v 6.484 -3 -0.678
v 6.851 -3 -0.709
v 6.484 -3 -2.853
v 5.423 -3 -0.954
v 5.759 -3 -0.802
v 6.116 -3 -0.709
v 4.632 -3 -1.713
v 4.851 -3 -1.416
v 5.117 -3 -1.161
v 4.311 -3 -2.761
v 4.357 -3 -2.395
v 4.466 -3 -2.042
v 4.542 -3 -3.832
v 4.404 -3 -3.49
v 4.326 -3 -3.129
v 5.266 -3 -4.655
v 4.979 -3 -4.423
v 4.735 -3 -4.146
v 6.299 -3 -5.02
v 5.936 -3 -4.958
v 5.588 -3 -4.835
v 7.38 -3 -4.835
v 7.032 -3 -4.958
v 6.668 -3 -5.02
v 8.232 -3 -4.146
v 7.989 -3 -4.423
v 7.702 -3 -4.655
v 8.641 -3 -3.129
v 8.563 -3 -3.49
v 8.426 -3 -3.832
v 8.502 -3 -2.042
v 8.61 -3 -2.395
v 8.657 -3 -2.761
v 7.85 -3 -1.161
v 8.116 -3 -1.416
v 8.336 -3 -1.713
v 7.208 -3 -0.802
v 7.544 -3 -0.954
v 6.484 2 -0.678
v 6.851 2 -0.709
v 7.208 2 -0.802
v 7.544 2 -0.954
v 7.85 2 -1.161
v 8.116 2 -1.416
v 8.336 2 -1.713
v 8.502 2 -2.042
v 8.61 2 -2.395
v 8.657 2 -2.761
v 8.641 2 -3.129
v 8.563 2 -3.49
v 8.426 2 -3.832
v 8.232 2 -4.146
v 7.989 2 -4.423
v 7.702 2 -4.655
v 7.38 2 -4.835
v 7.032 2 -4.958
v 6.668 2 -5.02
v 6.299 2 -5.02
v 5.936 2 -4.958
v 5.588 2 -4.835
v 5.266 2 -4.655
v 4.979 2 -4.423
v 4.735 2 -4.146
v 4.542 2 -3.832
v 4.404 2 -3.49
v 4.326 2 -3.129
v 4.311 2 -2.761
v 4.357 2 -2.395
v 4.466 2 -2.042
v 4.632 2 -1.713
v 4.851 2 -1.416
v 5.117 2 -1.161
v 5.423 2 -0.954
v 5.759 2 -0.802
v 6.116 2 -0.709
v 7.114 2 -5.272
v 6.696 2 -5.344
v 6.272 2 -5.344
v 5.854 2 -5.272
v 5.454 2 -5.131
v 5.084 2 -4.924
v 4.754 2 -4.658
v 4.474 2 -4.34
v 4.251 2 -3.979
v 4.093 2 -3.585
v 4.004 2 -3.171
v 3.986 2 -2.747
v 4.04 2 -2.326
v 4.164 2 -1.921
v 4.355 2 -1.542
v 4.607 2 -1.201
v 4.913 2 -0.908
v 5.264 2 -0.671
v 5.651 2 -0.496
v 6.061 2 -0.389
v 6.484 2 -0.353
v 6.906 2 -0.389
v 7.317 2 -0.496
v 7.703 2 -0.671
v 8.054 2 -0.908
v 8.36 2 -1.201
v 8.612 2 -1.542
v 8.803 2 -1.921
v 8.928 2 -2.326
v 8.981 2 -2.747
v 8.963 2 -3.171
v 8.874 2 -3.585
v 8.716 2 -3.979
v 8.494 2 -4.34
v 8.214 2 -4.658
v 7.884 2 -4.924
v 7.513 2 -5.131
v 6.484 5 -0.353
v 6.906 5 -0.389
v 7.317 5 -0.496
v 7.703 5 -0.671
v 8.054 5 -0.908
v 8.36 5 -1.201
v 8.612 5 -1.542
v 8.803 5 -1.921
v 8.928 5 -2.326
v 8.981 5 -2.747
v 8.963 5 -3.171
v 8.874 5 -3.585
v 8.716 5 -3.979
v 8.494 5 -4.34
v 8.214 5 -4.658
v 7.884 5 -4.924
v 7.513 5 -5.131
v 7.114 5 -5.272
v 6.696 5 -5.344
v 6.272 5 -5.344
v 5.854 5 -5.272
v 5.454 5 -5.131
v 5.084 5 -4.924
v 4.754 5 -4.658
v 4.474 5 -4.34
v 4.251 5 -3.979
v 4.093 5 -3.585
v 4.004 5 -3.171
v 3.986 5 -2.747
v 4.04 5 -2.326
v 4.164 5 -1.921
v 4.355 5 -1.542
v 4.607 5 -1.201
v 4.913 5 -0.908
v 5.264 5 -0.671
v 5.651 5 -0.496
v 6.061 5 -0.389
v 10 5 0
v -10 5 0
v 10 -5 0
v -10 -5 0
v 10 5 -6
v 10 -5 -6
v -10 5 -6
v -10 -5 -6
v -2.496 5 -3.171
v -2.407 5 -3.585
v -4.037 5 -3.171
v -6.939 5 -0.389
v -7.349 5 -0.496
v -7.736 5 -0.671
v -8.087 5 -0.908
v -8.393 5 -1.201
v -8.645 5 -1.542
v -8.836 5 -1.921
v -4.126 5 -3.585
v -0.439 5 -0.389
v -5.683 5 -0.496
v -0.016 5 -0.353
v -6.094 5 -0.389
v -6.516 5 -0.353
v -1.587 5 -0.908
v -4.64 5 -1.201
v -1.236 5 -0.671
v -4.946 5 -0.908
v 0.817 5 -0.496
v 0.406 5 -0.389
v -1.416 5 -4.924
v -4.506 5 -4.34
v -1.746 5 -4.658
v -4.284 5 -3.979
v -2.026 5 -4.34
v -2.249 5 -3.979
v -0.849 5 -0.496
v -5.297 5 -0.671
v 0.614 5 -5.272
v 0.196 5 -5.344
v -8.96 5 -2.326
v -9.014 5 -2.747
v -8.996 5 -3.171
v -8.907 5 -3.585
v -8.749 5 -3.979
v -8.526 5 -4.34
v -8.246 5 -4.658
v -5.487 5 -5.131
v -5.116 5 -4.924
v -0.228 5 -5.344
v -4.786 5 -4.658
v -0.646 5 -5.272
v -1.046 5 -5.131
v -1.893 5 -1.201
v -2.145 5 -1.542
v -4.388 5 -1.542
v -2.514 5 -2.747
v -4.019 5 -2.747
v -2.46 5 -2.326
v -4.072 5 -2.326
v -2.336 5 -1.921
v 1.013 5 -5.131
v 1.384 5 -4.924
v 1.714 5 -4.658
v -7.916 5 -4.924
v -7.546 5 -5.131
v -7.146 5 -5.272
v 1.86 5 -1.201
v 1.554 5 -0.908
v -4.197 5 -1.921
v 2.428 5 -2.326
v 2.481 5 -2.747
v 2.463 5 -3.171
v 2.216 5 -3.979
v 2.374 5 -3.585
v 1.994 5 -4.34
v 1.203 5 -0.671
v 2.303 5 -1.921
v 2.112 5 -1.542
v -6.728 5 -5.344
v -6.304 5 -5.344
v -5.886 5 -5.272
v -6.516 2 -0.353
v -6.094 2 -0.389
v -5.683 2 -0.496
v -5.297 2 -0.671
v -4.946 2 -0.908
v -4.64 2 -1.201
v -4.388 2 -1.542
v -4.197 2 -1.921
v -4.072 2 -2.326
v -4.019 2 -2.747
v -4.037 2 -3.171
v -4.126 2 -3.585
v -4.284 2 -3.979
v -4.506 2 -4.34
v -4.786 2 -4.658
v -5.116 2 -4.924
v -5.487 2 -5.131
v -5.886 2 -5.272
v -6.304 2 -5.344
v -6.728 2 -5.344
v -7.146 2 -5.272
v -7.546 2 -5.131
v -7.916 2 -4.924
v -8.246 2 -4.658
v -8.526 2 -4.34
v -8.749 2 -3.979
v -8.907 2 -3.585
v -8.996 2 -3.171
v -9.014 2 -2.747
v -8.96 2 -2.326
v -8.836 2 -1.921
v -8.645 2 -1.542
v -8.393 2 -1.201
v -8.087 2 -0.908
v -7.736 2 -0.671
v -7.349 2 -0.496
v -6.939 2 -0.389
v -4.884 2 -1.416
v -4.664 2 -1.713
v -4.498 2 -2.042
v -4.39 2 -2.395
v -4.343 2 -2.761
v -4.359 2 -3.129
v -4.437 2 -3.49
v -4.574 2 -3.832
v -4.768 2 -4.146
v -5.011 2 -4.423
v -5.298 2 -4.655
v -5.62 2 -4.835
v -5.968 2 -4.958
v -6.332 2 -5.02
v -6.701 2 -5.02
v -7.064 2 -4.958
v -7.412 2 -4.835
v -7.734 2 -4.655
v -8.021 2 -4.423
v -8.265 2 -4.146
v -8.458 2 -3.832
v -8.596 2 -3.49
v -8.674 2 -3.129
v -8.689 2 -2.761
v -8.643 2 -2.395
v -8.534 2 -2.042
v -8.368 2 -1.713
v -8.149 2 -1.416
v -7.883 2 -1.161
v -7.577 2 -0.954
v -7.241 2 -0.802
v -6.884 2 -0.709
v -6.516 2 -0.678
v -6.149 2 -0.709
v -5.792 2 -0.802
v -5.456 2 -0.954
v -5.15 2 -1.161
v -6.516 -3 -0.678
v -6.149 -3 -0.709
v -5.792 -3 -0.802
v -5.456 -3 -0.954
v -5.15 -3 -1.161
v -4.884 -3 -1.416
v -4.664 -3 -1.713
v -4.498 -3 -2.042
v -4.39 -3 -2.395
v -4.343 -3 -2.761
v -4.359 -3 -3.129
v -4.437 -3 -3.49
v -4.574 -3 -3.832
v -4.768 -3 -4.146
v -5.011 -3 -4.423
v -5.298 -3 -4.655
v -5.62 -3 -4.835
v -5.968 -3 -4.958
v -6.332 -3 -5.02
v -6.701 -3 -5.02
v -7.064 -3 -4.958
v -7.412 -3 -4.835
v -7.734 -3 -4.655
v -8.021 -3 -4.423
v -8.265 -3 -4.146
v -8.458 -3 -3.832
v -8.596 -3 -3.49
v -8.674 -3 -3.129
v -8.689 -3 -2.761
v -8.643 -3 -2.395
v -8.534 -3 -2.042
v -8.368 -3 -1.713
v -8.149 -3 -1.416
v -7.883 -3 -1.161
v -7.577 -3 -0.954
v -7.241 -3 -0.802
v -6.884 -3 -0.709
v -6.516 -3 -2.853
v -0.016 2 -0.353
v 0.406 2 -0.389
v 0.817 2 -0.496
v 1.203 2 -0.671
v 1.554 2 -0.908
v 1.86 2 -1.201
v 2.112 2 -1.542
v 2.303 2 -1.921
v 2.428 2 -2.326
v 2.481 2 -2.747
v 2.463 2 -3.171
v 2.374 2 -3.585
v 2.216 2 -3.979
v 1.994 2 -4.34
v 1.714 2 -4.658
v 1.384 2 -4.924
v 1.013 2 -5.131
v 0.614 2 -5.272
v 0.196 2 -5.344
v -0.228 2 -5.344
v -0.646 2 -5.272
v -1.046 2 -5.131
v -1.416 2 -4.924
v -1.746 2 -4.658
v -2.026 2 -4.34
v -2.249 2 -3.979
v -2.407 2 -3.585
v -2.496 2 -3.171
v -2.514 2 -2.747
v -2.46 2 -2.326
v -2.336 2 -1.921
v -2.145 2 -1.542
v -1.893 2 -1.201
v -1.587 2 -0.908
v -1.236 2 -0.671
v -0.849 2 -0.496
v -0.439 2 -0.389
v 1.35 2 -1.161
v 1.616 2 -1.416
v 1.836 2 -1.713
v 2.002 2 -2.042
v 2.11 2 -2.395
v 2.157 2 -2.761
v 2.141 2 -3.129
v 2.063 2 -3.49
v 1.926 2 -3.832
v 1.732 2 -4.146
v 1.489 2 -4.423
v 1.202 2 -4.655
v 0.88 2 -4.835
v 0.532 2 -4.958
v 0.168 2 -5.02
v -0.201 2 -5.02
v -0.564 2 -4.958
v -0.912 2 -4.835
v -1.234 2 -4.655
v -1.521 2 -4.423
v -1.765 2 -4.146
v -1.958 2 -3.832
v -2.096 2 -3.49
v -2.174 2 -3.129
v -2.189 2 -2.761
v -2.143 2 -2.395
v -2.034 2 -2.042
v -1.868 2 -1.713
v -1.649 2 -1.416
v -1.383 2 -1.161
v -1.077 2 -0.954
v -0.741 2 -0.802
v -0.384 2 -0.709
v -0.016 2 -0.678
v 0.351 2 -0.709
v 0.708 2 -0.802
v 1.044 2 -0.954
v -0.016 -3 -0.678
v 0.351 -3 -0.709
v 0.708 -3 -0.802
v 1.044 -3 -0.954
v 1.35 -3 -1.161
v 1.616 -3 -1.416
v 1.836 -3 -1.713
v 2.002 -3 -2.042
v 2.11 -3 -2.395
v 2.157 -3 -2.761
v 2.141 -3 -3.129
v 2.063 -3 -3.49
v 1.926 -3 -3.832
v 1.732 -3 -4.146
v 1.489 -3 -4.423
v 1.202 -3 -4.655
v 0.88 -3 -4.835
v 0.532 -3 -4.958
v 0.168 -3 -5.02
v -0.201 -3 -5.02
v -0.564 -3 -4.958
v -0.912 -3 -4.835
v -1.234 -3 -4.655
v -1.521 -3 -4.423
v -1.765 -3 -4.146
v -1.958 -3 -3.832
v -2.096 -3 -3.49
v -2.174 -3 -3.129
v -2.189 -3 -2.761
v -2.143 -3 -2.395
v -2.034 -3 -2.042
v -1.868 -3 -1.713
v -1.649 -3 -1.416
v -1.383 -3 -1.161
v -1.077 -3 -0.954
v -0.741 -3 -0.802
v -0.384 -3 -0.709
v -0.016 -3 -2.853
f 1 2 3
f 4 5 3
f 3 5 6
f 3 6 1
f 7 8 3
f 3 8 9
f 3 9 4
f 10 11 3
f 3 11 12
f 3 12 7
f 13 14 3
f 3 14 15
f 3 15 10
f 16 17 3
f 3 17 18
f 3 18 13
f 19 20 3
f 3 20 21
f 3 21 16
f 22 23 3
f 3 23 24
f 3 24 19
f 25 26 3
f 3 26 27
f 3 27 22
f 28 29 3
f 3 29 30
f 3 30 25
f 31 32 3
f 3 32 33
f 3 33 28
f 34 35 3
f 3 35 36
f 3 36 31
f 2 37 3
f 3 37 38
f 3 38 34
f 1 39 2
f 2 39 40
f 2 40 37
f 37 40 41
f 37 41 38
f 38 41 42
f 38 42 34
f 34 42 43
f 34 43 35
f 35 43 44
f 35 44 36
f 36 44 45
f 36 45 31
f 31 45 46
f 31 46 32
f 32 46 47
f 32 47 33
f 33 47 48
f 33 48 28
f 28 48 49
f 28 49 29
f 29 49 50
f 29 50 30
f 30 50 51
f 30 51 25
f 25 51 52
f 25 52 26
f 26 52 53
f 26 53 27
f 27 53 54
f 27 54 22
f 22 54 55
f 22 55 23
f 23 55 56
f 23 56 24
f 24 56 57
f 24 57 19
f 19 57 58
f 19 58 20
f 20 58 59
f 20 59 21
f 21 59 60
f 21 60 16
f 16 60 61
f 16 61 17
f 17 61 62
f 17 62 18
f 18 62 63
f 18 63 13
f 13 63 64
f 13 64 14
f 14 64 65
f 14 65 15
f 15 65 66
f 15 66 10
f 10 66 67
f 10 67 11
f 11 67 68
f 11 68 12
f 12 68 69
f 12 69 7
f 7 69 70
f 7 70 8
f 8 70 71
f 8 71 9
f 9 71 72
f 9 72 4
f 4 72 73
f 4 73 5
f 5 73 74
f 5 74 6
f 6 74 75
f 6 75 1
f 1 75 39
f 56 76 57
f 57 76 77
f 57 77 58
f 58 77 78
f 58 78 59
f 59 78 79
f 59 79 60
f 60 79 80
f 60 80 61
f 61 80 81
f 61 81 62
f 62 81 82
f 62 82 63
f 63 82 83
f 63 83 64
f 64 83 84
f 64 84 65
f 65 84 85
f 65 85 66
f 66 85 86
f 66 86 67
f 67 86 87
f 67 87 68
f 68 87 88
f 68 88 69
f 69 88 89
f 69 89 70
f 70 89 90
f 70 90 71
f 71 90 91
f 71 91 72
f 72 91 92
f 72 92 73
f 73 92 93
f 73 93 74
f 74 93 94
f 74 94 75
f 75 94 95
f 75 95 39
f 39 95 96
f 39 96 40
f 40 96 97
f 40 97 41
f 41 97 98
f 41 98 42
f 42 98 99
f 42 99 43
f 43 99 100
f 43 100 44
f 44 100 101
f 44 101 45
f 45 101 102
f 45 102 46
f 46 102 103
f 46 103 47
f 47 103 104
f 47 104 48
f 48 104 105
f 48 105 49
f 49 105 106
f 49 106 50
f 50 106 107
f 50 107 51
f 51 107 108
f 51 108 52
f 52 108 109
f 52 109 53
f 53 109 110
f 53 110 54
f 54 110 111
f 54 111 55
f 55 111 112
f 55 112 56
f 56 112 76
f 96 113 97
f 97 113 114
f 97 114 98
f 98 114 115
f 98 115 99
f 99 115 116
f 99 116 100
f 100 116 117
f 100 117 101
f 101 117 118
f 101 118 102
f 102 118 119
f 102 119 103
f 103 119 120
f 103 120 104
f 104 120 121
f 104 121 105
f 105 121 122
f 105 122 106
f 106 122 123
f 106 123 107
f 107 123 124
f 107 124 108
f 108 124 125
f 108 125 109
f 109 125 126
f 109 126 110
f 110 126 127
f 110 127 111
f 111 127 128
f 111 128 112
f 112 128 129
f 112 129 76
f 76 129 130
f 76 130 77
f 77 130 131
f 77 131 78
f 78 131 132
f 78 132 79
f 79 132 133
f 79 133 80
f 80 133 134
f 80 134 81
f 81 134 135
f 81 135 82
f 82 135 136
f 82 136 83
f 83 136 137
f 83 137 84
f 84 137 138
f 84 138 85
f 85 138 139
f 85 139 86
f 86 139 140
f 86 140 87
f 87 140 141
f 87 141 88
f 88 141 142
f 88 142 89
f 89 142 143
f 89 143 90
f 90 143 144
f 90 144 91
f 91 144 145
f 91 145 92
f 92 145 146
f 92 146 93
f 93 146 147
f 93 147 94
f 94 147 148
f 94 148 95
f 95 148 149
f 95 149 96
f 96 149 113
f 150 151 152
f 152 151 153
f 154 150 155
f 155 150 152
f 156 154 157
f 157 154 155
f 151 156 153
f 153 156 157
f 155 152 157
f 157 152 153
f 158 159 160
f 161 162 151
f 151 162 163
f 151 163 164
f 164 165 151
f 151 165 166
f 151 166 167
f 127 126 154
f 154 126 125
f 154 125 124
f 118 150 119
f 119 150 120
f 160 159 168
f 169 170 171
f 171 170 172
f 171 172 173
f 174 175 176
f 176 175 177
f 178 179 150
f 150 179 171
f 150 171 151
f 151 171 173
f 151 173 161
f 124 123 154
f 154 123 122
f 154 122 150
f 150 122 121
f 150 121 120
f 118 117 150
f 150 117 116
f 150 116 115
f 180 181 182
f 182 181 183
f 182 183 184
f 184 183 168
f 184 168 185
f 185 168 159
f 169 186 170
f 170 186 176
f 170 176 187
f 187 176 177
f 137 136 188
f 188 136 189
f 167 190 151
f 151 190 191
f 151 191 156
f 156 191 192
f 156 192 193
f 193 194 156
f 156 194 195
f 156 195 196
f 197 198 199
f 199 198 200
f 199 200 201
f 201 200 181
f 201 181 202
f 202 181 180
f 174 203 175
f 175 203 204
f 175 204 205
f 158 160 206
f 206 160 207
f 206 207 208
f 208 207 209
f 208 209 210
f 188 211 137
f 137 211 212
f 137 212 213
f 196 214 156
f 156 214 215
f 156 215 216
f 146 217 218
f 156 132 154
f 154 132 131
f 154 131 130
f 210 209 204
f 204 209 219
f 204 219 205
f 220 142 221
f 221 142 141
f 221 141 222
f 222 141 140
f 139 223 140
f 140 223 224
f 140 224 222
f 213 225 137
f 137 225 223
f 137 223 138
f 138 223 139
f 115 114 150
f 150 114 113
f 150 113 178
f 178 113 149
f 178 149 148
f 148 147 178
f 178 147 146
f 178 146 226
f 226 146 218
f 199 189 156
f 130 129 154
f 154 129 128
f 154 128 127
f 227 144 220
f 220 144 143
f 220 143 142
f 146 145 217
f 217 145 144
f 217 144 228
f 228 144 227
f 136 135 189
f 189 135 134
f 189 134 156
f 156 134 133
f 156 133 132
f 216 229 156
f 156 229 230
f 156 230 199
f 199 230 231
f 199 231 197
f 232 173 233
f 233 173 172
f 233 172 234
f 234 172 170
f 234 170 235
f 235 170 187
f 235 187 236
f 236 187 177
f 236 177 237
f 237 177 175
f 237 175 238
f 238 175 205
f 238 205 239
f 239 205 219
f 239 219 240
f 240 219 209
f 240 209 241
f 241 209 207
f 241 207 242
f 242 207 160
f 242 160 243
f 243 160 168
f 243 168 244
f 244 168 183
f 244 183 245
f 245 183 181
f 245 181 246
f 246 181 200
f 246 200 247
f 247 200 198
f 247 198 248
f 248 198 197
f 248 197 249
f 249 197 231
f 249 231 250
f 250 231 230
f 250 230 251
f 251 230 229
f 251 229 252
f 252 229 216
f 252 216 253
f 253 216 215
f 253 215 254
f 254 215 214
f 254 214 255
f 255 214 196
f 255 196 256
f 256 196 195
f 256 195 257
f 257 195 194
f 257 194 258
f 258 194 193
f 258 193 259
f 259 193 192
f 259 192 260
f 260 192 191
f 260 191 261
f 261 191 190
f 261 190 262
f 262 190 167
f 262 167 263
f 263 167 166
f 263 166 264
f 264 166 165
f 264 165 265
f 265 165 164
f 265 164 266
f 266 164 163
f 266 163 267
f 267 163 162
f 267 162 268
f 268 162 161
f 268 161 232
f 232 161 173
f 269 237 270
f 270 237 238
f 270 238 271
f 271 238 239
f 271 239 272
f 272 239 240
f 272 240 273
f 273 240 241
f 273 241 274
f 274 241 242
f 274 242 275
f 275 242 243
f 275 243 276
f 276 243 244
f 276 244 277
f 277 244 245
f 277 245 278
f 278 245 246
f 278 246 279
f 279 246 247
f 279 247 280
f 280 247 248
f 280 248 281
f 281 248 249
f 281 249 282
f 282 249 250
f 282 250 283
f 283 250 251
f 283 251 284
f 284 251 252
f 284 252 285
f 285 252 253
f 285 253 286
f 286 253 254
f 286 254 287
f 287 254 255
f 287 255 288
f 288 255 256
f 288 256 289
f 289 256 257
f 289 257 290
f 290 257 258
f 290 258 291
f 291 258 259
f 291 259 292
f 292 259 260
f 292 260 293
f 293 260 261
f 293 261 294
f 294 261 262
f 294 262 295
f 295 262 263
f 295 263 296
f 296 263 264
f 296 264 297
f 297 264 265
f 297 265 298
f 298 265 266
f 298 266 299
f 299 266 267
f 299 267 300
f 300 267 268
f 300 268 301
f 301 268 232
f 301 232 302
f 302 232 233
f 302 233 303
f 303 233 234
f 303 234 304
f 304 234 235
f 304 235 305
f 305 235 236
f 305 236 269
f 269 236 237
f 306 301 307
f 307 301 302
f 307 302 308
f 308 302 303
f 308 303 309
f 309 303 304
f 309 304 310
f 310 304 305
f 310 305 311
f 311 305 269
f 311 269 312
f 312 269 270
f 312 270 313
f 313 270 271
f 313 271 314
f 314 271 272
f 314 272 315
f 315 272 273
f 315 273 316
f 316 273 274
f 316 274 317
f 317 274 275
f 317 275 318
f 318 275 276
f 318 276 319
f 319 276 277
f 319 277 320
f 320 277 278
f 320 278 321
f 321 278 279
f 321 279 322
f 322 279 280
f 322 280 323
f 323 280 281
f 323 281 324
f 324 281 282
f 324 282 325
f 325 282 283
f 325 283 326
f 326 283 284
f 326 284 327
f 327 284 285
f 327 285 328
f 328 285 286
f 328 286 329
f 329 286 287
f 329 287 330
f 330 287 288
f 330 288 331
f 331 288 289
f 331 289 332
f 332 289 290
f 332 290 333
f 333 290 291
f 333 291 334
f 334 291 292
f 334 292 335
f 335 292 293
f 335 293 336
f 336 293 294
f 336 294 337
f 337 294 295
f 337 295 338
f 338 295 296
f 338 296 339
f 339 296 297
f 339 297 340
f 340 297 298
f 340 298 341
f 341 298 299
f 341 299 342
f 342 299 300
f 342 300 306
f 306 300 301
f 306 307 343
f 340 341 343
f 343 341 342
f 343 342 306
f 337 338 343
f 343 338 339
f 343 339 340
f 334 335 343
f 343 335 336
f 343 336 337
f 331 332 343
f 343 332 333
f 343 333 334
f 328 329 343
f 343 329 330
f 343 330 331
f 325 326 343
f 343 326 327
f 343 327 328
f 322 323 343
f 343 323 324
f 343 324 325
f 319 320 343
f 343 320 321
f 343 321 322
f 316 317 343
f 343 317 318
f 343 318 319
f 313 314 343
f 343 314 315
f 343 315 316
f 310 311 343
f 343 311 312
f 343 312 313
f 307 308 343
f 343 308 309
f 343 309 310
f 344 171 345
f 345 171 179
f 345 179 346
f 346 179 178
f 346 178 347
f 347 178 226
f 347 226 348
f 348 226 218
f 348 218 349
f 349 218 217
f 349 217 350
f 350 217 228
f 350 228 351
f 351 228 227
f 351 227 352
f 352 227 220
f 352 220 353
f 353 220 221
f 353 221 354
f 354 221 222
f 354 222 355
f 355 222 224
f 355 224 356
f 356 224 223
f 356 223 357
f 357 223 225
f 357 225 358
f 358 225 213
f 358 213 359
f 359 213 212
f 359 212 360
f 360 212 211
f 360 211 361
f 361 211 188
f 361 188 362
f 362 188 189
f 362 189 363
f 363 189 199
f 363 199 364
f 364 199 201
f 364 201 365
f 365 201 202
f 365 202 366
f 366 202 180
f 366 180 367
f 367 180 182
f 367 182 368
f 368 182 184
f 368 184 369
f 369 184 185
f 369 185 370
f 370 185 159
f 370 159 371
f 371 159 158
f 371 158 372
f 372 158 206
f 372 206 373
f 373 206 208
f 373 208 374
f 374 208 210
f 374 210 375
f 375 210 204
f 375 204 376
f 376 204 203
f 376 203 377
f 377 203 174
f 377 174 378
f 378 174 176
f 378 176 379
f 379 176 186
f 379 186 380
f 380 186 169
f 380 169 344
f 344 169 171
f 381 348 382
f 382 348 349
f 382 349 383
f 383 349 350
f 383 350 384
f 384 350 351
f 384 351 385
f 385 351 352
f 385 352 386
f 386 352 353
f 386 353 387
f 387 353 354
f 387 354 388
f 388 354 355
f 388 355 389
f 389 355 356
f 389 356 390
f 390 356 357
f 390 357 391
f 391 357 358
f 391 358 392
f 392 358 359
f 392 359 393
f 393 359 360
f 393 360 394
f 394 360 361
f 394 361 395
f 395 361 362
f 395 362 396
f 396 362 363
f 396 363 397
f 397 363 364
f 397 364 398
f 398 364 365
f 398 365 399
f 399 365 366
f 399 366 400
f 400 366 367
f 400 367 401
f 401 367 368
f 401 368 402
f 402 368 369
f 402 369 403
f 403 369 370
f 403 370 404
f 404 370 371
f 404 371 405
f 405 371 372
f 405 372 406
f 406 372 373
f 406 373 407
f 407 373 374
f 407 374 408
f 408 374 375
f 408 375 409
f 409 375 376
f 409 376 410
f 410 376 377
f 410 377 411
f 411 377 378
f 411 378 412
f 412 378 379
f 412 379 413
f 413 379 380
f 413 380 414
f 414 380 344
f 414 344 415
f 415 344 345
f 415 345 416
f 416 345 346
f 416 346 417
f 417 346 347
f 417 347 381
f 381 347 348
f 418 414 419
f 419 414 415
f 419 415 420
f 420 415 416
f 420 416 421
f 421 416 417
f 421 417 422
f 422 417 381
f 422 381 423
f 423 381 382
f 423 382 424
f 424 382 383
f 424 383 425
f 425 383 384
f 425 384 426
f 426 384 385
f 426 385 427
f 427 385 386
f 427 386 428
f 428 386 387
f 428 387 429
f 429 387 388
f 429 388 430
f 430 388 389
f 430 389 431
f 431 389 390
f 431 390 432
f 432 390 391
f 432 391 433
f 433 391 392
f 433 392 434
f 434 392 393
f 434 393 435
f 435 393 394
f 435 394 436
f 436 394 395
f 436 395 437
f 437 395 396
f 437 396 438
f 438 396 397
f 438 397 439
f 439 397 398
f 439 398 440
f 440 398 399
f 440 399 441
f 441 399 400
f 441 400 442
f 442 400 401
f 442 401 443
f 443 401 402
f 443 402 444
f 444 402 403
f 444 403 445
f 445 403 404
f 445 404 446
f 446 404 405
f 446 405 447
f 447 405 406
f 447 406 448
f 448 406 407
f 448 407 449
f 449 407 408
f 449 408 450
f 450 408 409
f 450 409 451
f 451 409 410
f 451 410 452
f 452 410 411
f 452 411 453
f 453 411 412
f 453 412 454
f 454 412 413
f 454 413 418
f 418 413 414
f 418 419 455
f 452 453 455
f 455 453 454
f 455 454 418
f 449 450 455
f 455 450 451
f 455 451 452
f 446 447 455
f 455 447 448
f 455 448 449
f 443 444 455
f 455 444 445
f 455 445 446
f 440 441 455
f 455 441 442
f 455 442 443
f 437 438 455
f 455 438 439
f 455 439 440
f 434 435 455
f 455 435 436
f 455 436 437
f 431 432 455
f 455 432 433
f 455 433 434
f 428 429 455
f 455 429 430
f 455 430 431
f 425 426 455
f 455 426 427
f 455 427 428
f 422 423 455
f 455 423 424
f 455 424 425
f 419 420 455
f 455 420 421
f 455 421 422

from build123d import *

# Parameters (mm, degrees)
SKETCH1_W           = 20
SKETCH1_H           = 6
BOSS_EXTRUDE1_DEPTH = 5
CUT_EXTRUDE1_START  = 5
SKETCH1_4_R         = 2.5
SKETCH1_4_R_2       = 2.175
CUT_EXTRUDE1_DEPTH  = 3
CUT_EXTRUDE2_START  = 2
SKETCH1_5_R         = 2.175
CUT_EXTRUDE2_DEPTH  = 5
LPATTERN1_COUNT     = 3
LPATTERN1_PITCH     = 6.5


with BuildPart() as part:
    # Sketch1 → Boss-Extrude1 (new, symmetric)
    with BuildSketch(Plane(origin=(0, 0, 0), x_dir=(1, 0, 0), z_dir=(0, 1, 0))):
        with Locations((0, 3)):
            Rectangle(SKETCH1_W, SKETCH1_H)
    extrude(amount=BOSS_EXTRUDE1_DEPTH, both=True)

    # Sketch1<4> → Cut-Extrude1 (cut)
    # profile 1 of 2: a face of its own
    with BuildSketch(Plane(origin=(0, 0, 0), x_dir=(1, 0, 0), z_dir=(0, 1, 0)).offset(CUT_EXTRUDE1_START)):
        with Locations(Location((-6.516339464, 2.853050679, 0), (0, 0, 270))):
            Circle(SKETCH1_4_R)
        with Locations((-6.516339464, 2.853050679)):
            Circle(SKETCH1_4_R_2, mode=Mode.SUBTRACT)
    # profile 2 of 2: a face of its own
    with BuildSketch(Plane(origin=(0, 0, 0), x_dir=(1, 0, 0), z_dir=(0, 1, 0)).offset(CUT_EXTRUDE1_START)):
        with Locations((-6.516339464, 2.853050679)):
            Circle(SKETCH1_4_R_2)
    cut_extrude1 = extrude(amount=-CUT_EXTRUDE1_DEPTH, mode=Mode.SUBTRACT)

    # Sketch1<5> → Cut-Extrude2 (cut)
    with BuildSketch(Plane(origin=(0, 0, 0), x_dir=(1, 0, 0), z_dir=(0, 1, 0)).offset(CUT_EXTRUDE2_START)):
        with Locations(Location((-6.516339464, 2.853050679, 0), (0, 0, 270))):
            Circle(SKETCH1_5_R)
    cut_extrude2 = extrude(amount=-CUT_EXTRUDE2_DEPTH, mode=Mode.SUBTRACT)

    # LPattern1: Cut-Extrude1, Cut-Extrude2 ×3
    with Locations(*[(i * LPATTERN1_PITCH, 0, 0) for i in range(1, LPATTERN1_COUNT)]):
        add(cut_extrude1, mode=Mode.SUBTRACT)
        add(cut_extrude2, mode=Mode.SUBTRACT)


solid = part.part
